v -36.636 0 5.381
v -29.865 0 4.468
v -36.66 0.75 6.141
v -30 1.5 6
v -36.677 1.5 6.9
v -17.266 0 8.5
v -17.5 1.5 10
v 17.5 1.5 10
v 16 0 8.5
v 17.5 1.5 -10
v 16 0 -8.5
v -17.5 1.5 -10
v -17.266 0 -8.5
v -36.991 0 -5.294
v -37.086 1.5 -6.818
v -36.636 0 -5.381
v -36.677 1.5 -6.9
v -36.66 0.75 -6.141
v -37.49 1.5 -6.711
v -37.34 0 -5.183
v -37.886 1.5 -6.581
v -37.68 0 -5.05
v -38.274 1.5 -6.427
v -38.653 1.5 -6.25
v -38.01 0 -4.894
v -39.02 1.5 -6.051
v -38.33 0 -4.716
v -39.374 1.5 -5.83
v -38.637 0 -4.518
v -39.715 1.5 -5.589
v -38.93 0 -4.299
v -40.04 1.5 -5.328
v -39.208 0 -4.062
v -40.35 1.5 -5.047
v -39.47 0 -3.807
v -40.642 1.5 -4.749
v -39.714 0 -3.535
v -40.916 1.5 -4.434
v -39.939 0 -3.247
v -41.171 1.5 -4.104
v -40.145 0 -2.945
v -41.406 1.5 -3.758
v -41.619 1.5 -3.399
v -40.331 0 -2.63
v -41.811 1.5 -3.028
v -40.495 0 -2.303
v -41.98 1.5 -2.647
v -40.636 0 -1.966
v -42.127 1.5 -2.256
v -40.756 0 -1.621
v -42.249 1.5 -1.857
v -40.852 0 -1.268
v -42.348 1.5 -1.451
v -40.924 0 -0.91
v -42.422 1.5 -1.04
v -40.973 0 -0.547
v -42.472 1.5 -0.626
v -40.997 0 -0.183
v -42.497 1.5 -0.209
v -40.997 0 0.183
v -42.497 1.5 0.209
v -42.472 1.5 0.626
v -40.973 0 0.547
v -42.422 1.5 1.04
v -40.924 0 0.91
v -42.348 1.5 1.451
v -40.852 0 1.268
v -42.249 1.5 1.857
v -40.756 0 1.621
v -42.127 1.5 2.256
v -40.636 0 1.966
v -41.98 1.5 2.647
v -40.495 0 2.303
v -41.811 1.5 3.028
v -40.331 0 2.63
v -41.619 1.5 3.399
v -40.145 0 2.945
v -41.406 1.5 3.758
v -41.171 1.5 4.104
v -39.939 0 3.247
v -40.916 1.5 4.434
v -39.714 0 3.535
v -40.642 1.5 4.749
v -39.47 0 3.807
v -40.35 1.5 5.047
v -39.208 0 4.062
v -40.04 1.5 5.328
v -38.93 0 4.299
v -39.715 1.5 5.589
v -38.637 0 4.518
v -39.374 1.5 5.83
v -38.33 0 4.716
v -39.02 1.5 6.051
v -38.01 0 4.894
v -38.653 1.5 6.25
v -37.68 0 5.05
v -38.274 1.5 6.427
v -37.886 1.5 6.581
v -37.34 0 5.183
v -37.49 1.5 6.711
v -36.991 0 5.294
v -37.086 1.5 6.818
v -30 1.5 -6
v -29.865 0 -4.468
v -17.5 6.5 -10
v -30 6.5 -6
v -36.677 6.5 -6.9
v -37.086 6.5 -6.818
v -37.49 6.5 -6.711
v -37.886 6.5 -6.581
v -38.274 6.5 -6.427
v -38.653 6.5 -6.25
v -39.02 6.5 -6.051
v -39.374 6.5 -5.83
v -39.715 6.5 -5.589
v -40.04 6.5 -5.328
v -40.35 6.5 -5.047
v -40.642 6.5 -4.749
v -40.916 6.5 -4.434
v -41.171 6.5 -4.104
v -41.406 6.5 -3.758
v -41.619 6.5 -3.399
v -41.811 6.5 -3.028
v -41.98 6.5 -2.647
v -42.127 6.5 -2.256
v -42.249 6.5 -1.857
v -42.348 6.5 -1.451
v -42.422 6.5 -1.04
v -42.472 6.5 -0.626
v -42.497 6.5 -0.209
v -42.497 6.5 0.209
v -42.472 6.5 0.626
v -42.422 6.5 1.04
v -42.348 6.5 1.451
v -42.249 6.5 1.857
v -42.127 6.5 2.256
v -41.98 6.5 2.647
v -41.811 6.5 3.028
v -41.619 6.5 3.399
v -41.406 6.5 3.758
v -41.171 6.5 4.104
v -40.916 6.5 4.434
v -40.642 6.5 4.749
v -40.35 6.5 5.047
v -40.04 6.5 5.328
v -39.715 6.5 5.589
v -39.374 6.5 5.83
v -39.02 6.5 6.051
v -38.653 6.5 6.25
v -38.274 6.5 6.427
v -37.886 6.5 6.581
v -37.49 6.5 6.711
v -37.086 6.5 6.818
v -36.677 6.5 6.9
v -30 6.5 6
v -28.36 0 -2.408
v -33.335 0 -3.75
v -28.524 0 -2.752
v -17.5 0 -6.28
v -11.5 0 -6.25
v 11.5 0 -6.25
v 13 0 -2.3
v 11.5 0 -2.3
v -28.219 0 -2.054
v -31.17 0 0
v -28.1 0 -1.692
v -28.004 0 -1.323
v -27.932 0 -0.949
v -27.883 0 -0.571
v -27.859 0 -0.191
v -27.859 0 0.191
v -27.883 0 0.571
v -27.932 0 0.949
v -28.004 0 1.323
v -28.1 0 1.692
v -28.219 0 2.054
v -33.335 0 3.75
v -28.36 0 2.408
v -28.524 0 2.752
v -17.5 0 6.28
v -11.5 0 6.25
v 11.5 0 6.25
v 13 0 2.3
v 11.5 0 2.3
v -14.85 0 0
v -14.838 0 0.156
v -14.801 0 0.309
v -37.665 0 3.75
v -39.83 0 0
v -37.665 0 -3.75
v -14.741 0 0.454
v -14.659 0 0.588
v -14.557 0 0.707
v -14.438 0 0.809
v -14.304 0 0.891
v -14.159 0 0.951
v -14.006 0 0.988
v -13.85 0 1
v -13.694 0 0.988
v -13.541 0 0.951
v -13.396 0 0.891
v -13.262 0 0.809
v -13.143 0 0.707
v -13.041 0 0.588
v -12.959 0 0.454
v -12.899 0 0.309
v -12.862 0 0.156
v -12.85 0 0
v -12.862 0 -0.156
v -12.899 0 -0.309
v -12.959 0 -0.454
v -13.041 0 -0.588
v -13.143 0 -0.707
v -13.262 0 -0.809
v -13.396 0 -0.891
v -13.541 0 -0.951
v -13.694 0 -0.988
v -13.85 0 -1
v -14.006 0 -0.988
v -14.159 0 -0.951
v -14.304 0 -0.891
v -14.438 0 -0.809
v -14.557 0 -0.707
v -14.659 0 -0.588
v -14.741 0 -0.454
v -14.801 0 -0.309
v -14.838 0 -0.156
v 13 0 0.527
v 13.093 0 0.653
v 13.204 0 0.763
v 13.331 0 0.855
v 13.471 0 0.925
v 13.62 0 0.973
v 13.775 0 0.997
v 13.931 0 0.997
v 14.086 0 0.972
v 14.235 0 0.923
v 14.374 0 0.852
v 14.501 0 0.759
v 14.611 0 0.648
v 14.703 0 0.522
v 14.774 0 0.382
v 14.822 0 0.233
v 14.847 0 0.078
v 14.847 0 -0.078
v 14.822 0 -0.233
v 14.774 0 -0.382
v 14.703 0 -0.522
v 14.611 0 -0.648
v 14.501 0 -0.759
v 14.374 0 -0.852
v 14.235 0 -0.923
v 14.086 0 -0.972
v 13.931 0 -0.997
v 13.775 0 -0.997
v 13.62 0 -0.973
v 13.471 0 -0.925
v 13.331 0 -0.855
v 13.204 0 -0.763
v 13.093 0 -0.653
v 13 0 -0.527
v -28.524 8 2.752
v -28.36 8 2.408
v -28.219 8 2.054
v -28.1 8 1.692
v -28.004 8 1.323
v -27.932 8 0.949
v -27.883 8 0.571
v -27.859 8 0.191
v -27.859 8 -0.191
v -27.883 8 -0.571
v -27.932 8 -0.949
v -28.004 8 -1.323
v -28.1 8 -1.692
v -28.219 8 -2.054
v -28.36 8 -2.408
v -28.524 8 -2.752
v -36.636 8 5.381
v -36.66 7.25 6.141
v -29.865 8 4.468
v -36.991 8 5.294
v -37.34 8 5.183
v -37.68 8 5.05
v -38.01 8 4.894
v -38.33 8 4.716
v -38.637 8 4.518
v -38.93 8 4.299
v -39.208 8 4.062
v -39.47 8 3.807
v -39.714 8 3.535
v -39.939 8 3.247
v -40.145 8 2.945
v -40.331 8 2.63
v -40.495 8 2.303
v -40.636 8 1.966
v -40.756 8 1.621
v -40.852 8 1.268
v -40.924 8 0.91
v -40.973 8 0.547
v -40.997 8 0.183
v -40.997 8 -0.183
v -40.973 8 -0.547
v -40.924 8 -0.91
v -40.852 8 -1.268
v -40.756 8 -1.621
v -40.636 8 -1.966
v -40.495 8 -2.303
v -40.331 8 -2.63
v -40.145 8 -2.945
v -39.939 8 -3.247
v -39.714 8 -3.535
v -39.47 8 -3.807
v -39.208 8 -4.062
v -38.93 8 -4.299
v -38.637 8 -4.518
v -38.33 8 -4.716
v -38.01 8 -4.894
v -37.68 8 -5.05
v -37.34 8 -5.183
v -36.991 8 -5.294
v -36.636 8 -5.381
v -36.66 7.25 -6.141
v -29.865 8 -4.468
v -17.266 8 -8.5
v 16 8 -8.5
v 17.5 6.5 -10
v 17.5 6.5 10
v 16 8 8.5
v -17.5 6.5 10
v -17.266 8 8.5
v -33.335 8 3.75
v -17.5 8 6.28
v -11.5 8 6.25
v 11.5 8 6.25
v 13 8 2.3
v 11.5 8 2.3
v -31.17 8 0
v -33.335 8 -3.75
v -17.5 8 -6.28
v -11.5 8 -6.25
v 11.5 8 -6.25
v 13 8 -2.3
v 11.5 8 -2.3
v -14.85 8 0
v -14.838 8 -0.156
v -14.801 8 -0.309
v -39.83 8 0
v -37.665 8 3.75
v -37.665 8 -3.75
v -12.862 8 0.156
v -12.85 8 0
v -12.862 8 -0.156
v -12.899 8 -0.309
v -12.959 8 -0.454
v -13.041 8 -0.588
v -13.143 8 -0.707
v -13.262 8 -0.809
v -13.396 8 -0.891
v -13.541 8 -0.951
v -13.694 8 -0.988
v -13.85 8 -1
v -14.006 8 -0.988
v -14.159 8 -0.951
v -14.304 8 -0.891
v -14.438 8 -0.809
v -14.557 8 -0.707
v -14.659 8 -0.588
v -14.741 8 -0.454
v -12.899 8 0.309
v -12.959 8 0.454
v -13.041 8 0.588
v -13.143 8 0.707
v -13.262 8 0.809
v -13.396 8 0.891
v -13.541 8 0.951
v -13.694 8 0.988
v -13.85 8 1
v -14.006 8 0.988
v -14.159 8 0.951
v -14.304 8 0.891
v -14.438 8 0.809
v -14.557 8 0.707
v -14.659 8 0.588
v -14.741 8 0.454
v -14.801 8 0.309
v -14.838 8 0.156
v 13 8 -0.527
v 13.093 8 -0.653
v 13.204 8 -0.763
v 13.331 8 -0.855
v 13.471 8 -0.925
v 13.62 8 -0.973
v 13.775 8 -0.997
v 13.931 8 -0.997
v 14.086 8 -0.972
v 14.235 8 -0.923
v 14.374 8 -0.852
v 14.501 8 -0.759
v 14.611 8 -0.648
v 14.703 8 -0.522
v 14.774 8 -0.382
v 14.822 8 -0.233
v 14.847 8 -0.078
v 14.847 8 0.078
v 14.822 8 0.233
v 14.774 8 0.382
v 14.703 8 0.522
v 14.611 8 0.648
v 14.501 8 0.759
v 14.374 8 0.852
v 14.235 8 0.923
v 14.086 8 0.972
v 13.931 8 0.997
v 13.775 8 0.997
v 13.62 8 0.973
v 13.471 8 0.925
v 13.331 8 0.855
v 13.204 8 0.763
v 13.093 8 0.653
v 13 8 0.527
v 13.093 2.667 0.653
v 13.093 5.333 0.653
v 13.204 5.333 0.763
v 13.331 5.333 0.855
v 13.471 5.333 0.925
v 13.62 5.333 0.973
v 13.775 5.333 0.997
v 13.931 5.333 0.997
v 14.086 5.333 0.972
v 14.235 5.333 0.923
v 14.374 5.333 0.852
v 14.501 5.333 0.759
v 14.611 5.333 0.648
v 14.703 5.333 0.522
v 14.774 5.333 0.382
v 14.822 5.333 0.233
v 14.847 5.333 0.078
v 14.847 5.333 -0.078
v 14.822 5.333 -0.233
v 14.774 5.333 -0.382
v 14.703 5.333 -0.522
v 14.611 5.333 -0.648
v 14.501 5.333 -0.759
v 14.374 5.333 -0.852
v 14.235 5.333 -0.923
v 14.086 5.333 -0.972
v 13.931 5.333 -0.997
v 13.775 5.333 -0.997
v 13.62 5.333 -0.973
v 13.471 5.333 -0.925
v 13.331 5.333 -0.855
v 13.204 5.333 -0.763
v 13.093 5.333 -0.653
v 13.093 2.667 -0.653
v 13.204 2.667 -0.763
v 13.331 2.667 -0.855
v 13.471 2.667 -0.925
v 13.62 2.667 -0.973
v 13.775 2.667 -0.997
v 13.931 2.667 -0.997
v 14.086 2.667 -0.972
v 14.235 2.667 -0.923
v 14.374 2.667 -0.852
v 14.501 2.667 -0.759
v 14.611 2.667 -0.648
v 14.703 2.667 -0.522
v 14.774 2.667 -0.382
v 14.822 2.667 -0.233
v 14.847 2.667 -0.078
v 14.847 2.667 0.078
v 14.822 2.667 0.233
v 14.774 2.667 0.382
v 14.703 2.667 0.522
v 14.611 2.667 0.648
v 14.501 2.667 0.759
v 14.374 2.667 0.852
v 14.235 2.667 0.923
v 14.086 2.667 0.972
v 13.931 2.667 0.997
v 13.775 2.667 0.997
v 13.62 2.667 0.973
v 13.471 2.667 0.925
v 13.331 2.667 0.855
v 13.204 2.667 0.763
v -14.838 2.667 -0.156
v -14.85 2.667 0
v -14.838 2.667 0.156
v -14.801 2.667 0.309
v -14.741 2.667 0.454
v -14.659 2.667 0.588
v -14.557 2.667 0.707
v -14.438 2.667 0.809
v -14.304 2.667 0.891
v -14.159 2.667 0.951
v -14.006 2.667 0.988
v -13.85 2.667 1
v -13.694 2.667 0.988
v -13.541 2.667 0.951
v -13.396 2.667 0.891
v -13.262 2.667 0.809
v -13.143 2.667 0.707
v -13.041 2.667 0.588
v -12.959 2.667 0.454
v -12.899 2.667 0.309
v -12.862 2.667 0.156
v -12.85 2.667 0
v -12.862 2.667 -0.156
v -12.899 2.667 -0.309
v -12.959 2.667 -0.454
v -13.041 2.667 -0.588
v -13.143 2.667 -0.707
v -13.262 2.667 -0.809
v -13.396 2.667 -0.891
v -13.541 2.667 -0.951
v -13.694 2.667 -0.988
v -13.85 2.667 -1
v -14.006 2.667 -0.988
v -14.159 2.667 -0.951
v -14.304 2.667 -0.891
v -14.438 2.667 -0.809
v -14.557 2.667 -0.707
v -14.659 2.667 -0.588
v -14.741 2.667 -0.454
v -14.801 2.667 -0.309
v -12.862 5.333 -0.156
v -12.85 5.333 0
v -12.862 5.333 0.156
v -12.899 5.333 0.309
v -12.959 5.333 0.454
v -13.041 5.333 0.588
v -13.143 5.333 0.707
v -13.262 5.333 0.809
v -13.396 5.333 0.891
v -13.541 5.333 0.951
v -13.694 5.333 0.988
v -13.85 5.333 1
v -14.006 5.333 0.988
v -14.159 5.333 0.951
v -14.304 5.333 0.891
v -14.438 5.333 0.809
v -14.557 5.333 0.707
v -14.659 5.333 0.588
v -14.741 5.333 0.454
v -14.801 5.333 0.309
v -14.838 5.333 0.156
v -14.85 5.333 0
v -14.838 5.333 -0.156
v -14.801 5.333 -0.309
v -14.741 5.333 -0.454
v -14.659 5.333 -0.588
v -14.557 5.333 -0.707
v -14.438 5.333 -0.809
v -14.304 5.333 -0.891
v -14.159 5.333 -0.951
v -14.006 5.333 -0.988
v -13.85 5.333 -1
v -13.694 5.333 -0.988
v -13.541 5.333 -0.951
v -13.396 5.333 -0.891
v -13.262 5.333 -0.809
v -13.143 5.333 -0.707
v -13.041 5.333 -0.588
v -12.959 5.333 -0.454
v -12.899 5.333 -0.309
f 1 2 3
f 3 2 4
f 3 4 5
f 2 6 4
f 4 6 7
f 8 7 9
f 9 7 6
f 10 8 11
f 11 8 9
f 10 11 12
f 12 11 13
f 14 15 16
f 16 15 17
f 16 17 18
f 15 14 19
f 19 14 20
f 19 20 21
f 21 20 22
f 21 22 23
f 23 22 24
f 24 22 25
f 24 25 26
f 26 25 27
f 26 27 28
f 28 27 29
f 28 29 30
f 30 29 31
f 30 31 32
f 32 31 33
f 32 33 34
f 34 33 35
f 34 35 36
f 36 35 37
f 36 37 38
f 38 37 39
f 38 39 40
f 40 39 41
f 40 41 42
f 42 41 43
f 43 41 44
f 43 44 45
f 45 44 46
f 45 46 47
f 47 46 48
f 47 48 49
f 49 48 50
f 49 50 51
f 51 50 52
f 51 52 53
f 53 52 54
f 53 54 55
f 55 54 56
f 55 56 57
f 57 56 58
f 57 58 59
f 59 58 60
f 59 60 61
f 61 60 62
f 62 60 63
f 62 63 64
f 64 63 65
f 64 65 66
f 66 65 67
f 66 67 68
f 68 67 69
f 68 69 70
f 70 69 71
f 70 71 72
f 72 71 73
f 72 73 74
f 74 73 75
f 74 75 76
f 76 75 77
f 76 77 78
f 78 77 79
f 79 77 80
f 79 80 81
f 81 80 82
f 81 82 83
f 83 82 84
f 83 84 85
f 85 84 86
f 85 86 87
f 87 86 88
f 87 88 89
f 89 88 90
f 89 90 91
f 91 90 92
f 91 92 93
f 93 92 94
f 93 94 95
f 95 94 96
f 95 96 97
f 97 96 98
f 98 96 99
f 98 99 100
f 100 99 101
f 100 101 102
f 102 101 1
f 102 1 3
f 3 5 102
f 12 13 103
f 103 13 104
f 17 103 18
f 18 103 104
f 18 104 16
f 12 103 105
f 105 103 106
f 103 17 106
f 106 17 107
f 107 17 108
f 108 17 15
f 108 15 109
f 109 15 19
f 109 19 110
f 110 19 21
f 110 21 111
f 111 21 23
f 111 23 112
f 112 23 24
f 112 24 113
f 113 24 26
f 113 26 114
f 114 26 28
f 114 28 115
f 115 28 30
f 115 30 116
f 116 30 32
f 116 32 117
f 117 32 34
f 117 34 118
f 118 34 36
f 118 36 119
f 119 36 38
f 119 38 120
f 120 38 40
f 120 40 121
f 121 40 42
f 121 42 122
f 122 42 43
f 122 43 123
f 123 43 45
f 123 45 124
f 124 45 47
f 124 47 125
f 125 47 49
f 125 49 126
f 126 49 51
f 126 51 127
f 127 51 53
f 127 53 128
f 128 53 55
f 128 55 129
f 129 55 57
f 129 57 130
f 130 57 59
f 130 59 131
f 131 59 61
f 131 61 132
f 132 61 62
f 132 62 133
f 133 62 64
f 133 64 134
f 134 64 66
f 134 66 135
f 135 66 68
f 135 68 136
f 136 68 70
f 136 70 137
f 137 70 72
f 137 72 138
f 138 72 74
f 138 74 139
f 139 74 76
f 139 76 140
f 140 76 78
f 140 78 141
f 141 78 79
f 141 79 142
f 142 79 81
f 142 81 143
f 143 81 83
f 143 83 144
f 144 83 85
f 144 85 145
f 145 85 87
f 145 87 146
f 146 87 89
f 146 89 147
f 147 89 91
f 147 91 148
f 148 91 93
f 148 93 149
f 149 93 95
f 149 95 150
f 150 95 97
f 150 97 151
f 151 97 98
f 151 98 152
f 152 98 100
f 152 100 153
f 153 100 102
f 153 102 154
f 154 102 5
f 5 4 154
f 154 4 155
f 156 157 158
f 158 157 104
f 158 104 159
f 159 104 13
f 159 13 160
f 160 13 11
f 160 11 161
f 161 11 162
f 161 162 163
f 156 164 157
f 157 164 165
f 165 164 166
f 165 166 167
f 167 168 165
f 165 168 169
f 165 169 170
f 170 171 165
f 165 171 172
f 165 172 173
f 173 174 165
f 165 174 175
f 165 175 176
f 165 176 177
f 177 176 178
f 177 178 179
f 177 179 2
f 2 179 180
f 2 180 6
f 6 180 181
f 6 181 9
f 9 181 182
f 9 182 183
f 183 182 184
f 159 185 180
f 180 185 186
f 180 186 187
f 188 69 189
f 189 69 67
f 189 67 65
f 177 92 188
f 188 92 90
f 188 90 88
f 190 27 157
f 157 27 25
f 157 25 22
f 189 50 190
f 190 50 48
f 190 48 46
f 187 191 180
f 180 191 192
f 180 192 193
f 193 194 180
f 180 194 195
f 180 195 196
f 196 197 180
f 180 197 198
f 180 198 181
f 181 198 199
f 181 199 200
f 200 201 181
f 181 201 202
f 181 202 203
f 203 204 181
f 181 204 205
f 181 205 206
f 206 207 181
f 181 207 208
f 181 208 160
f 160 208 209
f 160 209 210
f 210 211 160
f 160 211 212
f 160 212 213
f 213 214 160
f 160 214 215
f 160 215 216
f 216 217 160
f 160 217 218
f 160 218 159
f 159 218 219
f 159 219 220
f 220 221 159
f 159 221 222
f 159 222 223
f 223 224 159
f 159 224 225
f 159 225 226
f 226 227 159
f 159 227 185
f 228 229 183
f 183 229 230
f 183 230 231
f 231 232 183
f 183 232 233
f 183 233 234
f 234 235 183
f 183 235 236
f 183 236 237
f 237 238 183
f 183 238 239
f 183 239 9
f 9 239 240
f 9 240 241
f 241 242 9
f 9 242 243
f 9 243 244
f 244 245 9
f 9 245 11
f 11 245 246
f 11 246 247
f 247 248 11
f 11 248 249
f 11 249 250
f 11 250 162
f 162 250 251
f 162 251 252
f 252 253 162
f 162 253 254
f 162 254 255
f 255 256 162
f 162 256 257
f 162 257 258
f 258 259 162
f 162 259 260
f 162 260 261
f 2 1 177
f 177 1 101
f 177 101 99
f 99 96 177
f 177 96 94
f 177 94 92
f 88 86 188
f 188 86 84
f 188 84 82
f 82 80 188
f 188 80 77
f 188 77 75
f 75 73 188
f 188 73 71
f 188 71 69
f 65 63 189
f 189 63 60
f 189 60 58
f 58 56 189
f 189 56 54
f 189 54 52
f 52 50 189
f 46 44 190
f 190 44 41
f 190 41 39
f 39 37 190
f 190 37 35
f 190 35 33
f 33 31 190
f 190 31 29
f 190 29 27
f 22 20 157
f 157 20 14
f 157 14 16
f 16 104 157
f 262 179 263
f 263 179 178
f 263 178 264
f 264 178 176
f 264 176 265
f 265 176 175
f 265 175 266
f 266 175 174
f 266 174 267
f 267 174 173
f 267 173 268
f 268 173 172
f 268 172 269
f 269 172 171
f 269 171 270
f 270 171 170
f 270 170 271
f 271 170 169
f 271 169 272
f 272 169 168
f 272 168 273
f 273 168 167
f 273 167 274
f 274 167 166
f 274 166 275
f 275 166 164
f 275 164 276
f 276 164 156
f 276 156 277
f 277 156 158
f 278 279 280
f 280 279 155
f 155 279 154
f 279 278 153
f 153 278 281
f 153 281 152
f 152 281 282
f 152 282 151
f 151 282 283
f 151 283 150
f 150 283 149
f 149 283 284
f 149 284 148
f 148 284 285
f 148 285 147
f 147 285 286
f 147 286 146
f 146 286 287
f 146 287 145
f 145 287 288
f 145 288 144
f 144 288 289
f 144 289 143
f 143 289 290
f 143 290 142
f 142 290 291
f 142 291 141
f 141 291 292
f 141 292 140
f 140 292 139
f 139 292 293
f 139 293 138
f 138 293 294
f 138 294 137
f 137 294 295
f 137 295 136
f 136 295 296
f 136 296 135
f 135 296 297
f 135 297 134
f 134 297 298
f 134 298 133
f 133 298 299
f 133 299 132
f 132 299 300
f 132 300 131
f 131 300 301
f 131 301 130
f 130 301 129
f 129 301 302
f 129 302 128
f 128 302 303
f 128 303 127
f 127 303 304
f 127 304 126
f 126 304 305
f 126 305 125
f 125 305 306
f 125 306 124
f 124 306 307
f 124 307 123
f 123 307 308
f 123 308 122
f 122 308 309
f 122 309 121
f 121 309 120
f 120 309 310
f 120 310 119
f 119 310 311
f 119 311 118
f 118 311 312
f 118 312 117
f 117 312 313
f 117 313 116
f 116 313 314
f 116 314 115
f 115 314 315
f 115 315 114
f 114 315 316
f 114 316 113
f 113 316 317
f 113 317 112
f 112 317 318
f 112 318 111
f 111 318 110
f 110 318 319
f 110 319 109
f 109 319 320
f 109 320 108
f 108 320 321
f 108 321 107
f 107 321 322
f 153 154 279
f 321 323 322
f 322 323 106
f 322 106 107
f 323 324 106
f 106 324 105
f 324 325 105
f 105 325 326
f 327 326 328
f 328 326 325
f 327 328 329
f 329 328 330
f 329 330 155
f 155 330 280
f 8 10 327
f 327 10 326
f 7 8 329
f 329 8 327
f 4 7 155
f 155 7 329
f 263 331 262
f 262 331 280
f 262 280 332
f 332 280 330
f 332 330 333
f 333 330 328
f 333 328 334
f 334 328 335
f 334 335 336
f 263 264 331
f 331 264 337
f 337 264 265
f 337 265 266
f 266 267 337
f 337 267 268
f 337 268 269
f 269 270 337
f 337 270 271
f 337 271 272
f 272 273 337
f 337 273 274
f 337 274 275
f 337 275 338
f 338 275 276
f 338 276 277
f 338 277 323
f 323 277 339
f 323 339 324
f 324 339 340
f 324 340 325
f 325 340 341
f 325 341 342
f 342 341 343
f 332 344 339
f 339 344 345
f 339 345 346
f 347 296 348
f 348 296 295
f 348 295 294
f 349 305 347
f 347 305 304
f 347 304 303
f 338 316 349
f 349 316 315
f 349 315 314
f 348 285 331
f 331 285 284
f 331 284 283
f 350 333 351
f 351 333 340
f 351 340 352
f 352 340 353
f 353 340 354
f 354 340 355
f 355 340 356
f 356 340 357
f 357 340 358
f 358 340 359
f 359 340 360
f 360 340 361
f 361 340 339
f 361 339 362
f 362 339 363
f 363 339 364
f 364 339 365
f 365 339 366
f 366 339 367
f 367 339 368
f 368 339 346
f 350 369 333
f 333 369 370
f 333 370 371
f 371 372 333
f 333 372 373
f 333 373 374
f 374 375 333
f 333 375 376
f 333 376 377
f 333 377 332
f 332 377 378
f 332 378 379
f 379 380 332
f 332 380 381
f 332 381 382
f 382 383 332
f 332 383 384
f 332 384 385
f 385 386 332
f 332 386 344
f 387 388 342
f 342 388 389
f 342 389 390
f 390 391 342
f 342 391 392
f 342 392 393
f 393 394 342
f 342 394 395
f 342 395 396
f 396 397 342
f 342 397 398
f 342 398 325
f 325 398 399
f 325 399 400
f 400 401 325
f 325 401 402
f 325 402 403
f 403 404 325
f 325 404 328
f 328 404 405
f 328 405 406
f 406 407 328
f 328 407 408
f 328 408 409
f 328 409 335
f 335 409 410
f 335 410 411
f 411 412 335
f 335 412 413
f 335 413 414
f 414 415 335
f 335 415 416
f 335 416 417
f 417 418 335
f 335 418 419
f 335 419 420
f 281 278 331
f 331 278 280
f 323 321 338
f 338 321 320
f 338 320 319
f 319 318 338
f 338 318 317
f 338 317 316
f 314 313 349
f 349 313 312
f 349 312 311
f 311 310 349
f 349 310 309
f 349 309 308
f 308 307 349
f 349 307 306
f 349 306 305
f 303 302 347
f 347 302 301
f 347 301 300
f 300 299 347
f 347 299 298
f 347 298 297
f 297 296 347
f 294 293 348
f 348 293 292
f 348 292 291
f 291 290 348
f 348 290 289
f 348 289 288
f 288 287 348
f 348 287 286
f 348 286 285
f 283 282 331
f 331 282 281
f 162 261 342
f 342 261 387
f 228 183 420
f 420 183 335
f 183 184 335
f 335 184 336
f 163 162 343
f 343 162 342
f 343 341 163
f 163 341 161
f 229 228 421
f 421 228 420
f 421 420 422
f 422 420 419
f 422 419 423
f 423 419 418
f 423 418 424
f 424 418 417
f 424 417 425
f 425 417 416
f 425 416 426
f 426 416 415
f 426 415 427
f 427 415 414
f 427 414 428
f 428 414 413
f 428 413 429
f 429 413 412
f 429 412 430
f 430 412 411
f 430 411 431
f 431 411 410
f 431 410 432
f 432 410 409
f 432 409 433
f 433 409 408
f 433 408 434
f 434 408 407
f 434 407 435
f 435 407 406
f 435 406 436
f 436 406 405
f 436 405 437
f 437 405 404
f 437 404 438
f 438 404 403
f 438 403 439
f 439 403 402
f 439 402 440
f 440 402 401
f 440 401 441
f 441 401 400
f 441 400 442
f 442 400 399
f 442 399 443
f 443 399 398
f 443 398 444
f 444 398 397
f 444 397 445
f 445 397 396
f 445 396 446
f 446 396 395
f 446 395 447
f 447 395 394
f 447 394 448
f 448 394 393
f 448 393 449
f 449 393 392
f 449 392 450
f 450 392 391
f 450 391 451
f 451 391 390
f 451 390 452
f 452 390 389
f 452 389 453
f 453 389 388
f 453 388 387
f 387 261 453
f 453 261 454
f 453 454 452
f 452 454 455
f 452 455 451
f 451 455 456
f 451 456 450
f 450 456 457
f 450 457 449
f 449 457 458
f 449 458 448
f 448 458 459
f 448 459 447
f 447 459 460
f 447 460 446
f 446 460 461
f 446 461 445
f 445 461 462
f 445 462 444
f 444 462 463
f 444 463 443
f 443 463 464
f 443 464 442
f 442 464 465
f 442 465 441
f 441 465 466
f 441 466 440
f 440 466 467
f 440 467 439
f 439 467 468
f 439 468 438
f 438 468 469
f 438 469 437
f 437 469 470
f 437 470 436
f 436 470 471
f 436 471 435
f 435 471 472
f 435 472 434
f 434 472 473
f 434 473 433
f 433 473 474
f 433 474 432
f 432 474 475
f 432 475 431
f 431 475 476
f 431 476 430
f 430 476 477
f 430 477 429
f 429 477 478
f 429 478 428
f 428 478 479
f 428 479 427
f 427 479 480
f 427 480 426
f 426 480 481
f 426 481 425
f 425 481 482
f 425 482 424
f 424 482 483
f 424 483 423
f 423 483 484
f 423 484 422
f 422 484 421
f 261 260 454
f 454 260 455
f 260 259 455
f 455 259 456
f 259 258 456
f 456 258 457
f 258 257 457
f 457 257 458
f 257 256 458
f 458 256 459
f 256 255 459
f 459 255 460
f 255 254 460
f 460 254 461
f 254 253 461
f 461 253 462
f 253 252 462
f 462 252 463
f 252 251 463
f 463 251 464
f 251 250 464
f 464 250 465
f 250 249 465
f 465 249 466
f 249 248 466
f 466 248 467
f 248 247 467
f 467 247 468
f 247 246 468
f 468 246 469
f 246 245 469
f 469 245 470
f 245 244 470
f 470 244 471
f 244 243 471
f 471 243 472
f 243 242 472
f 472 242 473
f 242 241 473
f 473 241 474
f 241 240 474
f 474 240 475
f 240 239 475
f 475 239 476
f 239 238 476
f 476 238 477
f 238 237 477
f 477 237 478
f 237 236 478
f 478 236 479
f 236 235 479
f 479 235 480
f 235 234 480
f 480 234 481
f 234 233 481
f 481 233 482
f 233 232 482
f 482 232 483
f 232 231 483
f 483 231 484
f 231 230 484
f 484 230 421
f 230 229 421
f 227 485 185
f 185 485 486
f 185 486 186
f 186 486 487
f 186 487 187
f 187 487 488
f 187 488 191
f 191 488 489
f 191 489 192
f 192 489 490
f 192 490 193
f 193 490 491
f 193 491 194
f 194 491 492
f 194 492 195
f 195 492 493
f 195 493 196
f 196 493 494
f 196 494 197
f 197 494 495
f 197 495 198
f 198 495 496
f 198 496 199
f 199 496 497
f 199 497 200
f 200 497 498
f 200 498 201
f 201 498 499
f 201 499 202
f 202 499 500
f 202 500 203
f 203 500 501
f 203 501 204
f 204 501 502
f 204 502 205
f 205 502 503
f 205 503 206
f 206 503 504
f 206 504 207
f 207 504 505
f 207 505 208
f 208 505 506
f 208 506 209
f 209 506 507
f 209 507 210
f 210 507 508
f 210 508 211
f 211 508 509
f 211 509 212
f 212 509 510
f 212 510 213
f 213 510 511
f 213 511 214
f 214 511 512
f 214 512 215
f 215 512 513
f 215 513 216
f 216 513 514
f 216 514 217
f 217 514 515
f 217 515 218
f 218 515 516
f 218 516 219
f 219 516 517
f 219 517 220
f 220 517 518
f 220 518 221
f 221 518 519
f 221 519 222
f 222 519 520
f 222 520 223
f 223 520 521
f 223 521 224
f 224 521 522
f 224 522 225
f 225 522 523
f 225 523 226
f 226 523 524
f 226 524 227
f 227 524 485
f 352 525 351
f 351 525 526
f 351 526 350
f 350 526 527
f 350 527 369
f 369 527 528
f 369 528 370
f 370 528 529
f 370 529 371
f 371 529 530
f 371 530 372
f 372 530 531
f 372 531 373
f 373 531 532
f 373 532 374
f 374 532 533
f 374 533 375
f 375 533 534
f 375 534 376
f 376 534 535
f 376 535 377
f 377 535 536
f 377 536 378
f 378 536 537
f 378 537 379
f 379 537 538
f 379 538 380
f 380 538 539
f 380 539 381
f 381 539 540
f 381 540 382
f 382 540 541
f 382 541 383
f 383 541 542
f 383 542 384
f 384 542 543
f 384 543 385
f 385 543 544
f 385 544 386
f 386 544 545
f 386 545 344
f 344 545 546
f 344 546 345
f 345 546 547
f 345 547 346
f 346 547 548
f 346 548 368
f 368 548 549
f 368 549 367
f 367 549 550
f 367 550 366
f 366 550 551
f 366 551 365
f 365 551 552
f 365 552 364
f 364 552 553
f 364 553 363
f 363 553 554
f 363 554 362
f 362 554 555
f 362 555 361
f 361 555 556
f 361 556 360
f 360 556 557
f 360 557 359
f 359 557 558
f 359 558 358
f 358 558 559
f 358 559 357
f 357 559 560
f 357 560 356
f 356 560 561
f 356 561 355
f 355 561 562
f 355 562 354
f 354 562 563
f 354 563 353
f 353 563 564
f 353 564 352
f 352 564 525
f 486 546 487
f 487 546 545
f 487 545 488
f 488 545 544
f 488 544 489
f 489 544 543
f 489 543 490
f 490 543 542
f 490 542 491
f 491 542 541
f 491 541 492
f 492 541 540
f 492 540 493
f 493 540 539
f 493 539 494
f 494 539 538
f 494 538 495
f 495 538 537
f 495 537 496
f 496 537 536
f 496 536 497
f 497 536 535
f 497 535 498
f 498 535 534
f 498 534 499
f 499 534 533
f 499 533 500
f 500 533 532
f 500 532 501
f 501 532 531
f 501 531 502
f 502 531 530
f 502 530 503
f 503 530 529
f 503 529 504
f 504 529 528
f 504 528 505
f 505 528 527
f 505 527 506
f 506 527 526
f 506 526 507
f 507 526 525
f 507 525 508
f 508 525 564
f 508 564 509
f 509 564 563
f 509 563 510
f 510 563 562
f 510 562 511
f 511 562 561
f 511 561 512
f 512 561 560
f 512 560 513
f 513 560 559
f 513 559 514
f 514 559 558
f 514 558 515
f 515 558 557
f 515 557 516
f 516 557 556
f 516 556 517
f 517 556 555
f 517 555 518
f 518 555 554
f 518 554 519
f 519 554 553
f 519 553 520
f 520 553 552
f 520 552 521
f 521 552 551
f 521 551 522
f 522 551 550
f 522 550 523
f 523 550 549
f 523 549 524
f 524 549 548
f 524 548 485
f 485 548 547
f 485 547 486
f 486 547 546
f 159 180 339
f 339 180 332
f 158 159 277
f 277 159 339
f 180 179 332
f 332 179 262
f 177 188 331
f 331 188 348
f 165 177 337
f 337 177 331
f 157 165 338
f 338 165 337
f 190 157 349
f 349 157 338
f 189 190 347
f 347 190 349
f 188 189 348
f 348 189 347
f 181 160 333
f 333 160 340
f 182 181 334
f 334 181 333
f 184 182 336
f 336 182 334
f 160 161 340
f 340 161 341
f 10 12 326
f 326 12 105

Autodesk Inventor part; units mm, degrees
ref_plane "YZ Plane" through (0, 0, 0) normal (1, 0, 0) x (0, 1, 0)
ref_plane "XZ Plane" through (0, 0, 0) normal (0, 1, 0) x (-1, 0, 0)
ref_plane "XY Plane" through (0, 0, 0) normal (0, 0, 1) x (1, 0, 0)
sketch "Boceto1" plane through (0, 0, 0) normal (0, 1, 0) x (-1, 0, 0)
  line L0 (17.5, -10) -> (-17.5, -10)
  line L1 (-17.5, -10) -> (-17.5, 10)
  line L2 (-17.5, 10) -> (17.5, 10)
  line L3 (17.5, 10) -> (17.5, 6.2798) construction
  line L4 (17.5, -10) -> (-17.5, 10) construction
  line L5 (-17.5, -10) -> (17.5, 10) construction
  line L6 (11.5, -6.25) -> (-11.5, -6.25)
  line L7 (-11.5, -6.25) -> (-11.5, 6.25)
  line L8 (-11.5, 6.25) -> (11.5, 6.25)
  line L9 (11.5, 6.25) -> (11.5, -6.25)
  line L10 (11.5, -6.25) -> (-11.5, 6.25) construction
  line L11 (-11.5, -6.25) -> (11.5, 6.25) construction
  arc A0 (36.6767, -6.9004) -> (36.6767, 6.9004) centre (35.5, 0) ccw
  line L12 (42.5, -10) -> (42.5, 4.9137) construction
  line L13 (37.6651, 3.75) -> (39.8301, 0)
  line L14 (39.8301, 0) -> (37.6651, -3.75)
  line L15 (37.6651, -3.75) -> (33.3349, -3.75)
  line L16 (33.3349, -3.75) -> (31.1699, 0)
  line L17 (31.1699, 0) -> (33.3349, 3.75)
  line L18 (33.3349, 3.75) -> (37.6651, 3.75)
  line L19 (28.5244, -2.7519) -> (26.9356, 0)
  line L20 (26.9356, 0) -> (28.5244, 2.7519)
  line L21 (17.5, -6.2798) -> (17.5, -10) construction
  line L22 (17.5, 6.2798) -> (17.5, -6.2798)
  line L23 (36.6767, -6.9004) -> (30, -6)
  line L24 (30, -6) -> (17.5, -10)
  line L25 (36.6767, 6.9004) -> (30, 6)
  line L26 (30, 6) -> (17.5, 10)
  line L27 (17.5, 6.2798) -> (28.5244, 2.7519)
  line L28 (17.5, -6.2798) -> (28.5244, -2.7519)
  point P0 (0, 0)
  point P1 (0, 0)
  point P2 (0, 0)
  point P3 (0, 0)
  point P4 (0, 0)
  point P5 (17.5, 10)
  dimension "d1" = 35
  dimension "d2" = 23
  dimension "d3" = 12.5
  dimension "d4" = 20
  dimension "d6" = 14
  dimension "d7" = 60
  dimension "d8" = 7.5
  dimension "d9" = 0
  dimension "d10" = 3.667
  dimension "d11" = 0
  dimension "d15" = 6
  dimension "d16" = 6
  dimension "d17" = 30
  dimension "d18" = 30
extrude "Extrusión1" add sketch "Boceto1" along normal blind 8
sketch "Boceto2" plane through (0, 8, 0) normal (0, 1, 0) x (1, 0, 0)
  circle A0 centre (-13.85, 0) radius 1
  circle A1 centre (13.85, 0) radius 1
  line L0 (0, 0) -> (0, -2.5102) construction
  dimension "d19" = 2
  dimension "d20" = 2
  dimension "d21" = 27.7
extrude "Extrusión2" cut sketch "Boceto2" against normal through all
sketch "Boceto3" plane through (0, 8, 0) normal (0, 1, 0) x (1, 0, 0)
  line L0 (11.5, 6.25) -> (11.5, -6.25) projected
  line L1 (11.5, 6.25) -> (11.5, -6.25) projected
  line L2 (11.5, 2.3) -> (13, 2.3)
  line L3 (13, 2.3) -> (13, -2.3)
  line L4 (13, -2.3) -> (11.5, -2.3)
  line L5 (11.5, -2.3) -> (11.5, 2.3)
  line L6 (0, 0) -> (1.0594, 0) construction
  point P0 (11.5, 2.3)
  point P1 (11.5, -2.3)
  dimension "d24" = 4.6
  dimension "d34" = 1.5
extrude "Extrusión3" cut sketch "Boceto3" against normal through all
chamfer "Chaflán1" distance 1.5 angle 45 8 edges at (0, 8, -10) (-23.75, 8, -8) (-33.3383, 8, -6.4502) (-42.5, 8, 0) (-33.3383, 8, 6.4502) (-23.75, 8, 8) (0, 8, 10) (17.5, 8, 0)
fillet "Empalme1" radius 6 1 edges at (-26.9356, 4, 0)
chamfer "Chaflán2" distance 1.5 angle 45 8 edges at (0, 0, 10) (17.5, 0, 0) (0, 0, -10) (-23.75, 0, -8) (-33.3383, 0, -6.4502) (-42.5, 0, 0) (-33.3383, 0, 6.4502) (-23.75, 0, 8)
properties part number "Tibia_V2"
